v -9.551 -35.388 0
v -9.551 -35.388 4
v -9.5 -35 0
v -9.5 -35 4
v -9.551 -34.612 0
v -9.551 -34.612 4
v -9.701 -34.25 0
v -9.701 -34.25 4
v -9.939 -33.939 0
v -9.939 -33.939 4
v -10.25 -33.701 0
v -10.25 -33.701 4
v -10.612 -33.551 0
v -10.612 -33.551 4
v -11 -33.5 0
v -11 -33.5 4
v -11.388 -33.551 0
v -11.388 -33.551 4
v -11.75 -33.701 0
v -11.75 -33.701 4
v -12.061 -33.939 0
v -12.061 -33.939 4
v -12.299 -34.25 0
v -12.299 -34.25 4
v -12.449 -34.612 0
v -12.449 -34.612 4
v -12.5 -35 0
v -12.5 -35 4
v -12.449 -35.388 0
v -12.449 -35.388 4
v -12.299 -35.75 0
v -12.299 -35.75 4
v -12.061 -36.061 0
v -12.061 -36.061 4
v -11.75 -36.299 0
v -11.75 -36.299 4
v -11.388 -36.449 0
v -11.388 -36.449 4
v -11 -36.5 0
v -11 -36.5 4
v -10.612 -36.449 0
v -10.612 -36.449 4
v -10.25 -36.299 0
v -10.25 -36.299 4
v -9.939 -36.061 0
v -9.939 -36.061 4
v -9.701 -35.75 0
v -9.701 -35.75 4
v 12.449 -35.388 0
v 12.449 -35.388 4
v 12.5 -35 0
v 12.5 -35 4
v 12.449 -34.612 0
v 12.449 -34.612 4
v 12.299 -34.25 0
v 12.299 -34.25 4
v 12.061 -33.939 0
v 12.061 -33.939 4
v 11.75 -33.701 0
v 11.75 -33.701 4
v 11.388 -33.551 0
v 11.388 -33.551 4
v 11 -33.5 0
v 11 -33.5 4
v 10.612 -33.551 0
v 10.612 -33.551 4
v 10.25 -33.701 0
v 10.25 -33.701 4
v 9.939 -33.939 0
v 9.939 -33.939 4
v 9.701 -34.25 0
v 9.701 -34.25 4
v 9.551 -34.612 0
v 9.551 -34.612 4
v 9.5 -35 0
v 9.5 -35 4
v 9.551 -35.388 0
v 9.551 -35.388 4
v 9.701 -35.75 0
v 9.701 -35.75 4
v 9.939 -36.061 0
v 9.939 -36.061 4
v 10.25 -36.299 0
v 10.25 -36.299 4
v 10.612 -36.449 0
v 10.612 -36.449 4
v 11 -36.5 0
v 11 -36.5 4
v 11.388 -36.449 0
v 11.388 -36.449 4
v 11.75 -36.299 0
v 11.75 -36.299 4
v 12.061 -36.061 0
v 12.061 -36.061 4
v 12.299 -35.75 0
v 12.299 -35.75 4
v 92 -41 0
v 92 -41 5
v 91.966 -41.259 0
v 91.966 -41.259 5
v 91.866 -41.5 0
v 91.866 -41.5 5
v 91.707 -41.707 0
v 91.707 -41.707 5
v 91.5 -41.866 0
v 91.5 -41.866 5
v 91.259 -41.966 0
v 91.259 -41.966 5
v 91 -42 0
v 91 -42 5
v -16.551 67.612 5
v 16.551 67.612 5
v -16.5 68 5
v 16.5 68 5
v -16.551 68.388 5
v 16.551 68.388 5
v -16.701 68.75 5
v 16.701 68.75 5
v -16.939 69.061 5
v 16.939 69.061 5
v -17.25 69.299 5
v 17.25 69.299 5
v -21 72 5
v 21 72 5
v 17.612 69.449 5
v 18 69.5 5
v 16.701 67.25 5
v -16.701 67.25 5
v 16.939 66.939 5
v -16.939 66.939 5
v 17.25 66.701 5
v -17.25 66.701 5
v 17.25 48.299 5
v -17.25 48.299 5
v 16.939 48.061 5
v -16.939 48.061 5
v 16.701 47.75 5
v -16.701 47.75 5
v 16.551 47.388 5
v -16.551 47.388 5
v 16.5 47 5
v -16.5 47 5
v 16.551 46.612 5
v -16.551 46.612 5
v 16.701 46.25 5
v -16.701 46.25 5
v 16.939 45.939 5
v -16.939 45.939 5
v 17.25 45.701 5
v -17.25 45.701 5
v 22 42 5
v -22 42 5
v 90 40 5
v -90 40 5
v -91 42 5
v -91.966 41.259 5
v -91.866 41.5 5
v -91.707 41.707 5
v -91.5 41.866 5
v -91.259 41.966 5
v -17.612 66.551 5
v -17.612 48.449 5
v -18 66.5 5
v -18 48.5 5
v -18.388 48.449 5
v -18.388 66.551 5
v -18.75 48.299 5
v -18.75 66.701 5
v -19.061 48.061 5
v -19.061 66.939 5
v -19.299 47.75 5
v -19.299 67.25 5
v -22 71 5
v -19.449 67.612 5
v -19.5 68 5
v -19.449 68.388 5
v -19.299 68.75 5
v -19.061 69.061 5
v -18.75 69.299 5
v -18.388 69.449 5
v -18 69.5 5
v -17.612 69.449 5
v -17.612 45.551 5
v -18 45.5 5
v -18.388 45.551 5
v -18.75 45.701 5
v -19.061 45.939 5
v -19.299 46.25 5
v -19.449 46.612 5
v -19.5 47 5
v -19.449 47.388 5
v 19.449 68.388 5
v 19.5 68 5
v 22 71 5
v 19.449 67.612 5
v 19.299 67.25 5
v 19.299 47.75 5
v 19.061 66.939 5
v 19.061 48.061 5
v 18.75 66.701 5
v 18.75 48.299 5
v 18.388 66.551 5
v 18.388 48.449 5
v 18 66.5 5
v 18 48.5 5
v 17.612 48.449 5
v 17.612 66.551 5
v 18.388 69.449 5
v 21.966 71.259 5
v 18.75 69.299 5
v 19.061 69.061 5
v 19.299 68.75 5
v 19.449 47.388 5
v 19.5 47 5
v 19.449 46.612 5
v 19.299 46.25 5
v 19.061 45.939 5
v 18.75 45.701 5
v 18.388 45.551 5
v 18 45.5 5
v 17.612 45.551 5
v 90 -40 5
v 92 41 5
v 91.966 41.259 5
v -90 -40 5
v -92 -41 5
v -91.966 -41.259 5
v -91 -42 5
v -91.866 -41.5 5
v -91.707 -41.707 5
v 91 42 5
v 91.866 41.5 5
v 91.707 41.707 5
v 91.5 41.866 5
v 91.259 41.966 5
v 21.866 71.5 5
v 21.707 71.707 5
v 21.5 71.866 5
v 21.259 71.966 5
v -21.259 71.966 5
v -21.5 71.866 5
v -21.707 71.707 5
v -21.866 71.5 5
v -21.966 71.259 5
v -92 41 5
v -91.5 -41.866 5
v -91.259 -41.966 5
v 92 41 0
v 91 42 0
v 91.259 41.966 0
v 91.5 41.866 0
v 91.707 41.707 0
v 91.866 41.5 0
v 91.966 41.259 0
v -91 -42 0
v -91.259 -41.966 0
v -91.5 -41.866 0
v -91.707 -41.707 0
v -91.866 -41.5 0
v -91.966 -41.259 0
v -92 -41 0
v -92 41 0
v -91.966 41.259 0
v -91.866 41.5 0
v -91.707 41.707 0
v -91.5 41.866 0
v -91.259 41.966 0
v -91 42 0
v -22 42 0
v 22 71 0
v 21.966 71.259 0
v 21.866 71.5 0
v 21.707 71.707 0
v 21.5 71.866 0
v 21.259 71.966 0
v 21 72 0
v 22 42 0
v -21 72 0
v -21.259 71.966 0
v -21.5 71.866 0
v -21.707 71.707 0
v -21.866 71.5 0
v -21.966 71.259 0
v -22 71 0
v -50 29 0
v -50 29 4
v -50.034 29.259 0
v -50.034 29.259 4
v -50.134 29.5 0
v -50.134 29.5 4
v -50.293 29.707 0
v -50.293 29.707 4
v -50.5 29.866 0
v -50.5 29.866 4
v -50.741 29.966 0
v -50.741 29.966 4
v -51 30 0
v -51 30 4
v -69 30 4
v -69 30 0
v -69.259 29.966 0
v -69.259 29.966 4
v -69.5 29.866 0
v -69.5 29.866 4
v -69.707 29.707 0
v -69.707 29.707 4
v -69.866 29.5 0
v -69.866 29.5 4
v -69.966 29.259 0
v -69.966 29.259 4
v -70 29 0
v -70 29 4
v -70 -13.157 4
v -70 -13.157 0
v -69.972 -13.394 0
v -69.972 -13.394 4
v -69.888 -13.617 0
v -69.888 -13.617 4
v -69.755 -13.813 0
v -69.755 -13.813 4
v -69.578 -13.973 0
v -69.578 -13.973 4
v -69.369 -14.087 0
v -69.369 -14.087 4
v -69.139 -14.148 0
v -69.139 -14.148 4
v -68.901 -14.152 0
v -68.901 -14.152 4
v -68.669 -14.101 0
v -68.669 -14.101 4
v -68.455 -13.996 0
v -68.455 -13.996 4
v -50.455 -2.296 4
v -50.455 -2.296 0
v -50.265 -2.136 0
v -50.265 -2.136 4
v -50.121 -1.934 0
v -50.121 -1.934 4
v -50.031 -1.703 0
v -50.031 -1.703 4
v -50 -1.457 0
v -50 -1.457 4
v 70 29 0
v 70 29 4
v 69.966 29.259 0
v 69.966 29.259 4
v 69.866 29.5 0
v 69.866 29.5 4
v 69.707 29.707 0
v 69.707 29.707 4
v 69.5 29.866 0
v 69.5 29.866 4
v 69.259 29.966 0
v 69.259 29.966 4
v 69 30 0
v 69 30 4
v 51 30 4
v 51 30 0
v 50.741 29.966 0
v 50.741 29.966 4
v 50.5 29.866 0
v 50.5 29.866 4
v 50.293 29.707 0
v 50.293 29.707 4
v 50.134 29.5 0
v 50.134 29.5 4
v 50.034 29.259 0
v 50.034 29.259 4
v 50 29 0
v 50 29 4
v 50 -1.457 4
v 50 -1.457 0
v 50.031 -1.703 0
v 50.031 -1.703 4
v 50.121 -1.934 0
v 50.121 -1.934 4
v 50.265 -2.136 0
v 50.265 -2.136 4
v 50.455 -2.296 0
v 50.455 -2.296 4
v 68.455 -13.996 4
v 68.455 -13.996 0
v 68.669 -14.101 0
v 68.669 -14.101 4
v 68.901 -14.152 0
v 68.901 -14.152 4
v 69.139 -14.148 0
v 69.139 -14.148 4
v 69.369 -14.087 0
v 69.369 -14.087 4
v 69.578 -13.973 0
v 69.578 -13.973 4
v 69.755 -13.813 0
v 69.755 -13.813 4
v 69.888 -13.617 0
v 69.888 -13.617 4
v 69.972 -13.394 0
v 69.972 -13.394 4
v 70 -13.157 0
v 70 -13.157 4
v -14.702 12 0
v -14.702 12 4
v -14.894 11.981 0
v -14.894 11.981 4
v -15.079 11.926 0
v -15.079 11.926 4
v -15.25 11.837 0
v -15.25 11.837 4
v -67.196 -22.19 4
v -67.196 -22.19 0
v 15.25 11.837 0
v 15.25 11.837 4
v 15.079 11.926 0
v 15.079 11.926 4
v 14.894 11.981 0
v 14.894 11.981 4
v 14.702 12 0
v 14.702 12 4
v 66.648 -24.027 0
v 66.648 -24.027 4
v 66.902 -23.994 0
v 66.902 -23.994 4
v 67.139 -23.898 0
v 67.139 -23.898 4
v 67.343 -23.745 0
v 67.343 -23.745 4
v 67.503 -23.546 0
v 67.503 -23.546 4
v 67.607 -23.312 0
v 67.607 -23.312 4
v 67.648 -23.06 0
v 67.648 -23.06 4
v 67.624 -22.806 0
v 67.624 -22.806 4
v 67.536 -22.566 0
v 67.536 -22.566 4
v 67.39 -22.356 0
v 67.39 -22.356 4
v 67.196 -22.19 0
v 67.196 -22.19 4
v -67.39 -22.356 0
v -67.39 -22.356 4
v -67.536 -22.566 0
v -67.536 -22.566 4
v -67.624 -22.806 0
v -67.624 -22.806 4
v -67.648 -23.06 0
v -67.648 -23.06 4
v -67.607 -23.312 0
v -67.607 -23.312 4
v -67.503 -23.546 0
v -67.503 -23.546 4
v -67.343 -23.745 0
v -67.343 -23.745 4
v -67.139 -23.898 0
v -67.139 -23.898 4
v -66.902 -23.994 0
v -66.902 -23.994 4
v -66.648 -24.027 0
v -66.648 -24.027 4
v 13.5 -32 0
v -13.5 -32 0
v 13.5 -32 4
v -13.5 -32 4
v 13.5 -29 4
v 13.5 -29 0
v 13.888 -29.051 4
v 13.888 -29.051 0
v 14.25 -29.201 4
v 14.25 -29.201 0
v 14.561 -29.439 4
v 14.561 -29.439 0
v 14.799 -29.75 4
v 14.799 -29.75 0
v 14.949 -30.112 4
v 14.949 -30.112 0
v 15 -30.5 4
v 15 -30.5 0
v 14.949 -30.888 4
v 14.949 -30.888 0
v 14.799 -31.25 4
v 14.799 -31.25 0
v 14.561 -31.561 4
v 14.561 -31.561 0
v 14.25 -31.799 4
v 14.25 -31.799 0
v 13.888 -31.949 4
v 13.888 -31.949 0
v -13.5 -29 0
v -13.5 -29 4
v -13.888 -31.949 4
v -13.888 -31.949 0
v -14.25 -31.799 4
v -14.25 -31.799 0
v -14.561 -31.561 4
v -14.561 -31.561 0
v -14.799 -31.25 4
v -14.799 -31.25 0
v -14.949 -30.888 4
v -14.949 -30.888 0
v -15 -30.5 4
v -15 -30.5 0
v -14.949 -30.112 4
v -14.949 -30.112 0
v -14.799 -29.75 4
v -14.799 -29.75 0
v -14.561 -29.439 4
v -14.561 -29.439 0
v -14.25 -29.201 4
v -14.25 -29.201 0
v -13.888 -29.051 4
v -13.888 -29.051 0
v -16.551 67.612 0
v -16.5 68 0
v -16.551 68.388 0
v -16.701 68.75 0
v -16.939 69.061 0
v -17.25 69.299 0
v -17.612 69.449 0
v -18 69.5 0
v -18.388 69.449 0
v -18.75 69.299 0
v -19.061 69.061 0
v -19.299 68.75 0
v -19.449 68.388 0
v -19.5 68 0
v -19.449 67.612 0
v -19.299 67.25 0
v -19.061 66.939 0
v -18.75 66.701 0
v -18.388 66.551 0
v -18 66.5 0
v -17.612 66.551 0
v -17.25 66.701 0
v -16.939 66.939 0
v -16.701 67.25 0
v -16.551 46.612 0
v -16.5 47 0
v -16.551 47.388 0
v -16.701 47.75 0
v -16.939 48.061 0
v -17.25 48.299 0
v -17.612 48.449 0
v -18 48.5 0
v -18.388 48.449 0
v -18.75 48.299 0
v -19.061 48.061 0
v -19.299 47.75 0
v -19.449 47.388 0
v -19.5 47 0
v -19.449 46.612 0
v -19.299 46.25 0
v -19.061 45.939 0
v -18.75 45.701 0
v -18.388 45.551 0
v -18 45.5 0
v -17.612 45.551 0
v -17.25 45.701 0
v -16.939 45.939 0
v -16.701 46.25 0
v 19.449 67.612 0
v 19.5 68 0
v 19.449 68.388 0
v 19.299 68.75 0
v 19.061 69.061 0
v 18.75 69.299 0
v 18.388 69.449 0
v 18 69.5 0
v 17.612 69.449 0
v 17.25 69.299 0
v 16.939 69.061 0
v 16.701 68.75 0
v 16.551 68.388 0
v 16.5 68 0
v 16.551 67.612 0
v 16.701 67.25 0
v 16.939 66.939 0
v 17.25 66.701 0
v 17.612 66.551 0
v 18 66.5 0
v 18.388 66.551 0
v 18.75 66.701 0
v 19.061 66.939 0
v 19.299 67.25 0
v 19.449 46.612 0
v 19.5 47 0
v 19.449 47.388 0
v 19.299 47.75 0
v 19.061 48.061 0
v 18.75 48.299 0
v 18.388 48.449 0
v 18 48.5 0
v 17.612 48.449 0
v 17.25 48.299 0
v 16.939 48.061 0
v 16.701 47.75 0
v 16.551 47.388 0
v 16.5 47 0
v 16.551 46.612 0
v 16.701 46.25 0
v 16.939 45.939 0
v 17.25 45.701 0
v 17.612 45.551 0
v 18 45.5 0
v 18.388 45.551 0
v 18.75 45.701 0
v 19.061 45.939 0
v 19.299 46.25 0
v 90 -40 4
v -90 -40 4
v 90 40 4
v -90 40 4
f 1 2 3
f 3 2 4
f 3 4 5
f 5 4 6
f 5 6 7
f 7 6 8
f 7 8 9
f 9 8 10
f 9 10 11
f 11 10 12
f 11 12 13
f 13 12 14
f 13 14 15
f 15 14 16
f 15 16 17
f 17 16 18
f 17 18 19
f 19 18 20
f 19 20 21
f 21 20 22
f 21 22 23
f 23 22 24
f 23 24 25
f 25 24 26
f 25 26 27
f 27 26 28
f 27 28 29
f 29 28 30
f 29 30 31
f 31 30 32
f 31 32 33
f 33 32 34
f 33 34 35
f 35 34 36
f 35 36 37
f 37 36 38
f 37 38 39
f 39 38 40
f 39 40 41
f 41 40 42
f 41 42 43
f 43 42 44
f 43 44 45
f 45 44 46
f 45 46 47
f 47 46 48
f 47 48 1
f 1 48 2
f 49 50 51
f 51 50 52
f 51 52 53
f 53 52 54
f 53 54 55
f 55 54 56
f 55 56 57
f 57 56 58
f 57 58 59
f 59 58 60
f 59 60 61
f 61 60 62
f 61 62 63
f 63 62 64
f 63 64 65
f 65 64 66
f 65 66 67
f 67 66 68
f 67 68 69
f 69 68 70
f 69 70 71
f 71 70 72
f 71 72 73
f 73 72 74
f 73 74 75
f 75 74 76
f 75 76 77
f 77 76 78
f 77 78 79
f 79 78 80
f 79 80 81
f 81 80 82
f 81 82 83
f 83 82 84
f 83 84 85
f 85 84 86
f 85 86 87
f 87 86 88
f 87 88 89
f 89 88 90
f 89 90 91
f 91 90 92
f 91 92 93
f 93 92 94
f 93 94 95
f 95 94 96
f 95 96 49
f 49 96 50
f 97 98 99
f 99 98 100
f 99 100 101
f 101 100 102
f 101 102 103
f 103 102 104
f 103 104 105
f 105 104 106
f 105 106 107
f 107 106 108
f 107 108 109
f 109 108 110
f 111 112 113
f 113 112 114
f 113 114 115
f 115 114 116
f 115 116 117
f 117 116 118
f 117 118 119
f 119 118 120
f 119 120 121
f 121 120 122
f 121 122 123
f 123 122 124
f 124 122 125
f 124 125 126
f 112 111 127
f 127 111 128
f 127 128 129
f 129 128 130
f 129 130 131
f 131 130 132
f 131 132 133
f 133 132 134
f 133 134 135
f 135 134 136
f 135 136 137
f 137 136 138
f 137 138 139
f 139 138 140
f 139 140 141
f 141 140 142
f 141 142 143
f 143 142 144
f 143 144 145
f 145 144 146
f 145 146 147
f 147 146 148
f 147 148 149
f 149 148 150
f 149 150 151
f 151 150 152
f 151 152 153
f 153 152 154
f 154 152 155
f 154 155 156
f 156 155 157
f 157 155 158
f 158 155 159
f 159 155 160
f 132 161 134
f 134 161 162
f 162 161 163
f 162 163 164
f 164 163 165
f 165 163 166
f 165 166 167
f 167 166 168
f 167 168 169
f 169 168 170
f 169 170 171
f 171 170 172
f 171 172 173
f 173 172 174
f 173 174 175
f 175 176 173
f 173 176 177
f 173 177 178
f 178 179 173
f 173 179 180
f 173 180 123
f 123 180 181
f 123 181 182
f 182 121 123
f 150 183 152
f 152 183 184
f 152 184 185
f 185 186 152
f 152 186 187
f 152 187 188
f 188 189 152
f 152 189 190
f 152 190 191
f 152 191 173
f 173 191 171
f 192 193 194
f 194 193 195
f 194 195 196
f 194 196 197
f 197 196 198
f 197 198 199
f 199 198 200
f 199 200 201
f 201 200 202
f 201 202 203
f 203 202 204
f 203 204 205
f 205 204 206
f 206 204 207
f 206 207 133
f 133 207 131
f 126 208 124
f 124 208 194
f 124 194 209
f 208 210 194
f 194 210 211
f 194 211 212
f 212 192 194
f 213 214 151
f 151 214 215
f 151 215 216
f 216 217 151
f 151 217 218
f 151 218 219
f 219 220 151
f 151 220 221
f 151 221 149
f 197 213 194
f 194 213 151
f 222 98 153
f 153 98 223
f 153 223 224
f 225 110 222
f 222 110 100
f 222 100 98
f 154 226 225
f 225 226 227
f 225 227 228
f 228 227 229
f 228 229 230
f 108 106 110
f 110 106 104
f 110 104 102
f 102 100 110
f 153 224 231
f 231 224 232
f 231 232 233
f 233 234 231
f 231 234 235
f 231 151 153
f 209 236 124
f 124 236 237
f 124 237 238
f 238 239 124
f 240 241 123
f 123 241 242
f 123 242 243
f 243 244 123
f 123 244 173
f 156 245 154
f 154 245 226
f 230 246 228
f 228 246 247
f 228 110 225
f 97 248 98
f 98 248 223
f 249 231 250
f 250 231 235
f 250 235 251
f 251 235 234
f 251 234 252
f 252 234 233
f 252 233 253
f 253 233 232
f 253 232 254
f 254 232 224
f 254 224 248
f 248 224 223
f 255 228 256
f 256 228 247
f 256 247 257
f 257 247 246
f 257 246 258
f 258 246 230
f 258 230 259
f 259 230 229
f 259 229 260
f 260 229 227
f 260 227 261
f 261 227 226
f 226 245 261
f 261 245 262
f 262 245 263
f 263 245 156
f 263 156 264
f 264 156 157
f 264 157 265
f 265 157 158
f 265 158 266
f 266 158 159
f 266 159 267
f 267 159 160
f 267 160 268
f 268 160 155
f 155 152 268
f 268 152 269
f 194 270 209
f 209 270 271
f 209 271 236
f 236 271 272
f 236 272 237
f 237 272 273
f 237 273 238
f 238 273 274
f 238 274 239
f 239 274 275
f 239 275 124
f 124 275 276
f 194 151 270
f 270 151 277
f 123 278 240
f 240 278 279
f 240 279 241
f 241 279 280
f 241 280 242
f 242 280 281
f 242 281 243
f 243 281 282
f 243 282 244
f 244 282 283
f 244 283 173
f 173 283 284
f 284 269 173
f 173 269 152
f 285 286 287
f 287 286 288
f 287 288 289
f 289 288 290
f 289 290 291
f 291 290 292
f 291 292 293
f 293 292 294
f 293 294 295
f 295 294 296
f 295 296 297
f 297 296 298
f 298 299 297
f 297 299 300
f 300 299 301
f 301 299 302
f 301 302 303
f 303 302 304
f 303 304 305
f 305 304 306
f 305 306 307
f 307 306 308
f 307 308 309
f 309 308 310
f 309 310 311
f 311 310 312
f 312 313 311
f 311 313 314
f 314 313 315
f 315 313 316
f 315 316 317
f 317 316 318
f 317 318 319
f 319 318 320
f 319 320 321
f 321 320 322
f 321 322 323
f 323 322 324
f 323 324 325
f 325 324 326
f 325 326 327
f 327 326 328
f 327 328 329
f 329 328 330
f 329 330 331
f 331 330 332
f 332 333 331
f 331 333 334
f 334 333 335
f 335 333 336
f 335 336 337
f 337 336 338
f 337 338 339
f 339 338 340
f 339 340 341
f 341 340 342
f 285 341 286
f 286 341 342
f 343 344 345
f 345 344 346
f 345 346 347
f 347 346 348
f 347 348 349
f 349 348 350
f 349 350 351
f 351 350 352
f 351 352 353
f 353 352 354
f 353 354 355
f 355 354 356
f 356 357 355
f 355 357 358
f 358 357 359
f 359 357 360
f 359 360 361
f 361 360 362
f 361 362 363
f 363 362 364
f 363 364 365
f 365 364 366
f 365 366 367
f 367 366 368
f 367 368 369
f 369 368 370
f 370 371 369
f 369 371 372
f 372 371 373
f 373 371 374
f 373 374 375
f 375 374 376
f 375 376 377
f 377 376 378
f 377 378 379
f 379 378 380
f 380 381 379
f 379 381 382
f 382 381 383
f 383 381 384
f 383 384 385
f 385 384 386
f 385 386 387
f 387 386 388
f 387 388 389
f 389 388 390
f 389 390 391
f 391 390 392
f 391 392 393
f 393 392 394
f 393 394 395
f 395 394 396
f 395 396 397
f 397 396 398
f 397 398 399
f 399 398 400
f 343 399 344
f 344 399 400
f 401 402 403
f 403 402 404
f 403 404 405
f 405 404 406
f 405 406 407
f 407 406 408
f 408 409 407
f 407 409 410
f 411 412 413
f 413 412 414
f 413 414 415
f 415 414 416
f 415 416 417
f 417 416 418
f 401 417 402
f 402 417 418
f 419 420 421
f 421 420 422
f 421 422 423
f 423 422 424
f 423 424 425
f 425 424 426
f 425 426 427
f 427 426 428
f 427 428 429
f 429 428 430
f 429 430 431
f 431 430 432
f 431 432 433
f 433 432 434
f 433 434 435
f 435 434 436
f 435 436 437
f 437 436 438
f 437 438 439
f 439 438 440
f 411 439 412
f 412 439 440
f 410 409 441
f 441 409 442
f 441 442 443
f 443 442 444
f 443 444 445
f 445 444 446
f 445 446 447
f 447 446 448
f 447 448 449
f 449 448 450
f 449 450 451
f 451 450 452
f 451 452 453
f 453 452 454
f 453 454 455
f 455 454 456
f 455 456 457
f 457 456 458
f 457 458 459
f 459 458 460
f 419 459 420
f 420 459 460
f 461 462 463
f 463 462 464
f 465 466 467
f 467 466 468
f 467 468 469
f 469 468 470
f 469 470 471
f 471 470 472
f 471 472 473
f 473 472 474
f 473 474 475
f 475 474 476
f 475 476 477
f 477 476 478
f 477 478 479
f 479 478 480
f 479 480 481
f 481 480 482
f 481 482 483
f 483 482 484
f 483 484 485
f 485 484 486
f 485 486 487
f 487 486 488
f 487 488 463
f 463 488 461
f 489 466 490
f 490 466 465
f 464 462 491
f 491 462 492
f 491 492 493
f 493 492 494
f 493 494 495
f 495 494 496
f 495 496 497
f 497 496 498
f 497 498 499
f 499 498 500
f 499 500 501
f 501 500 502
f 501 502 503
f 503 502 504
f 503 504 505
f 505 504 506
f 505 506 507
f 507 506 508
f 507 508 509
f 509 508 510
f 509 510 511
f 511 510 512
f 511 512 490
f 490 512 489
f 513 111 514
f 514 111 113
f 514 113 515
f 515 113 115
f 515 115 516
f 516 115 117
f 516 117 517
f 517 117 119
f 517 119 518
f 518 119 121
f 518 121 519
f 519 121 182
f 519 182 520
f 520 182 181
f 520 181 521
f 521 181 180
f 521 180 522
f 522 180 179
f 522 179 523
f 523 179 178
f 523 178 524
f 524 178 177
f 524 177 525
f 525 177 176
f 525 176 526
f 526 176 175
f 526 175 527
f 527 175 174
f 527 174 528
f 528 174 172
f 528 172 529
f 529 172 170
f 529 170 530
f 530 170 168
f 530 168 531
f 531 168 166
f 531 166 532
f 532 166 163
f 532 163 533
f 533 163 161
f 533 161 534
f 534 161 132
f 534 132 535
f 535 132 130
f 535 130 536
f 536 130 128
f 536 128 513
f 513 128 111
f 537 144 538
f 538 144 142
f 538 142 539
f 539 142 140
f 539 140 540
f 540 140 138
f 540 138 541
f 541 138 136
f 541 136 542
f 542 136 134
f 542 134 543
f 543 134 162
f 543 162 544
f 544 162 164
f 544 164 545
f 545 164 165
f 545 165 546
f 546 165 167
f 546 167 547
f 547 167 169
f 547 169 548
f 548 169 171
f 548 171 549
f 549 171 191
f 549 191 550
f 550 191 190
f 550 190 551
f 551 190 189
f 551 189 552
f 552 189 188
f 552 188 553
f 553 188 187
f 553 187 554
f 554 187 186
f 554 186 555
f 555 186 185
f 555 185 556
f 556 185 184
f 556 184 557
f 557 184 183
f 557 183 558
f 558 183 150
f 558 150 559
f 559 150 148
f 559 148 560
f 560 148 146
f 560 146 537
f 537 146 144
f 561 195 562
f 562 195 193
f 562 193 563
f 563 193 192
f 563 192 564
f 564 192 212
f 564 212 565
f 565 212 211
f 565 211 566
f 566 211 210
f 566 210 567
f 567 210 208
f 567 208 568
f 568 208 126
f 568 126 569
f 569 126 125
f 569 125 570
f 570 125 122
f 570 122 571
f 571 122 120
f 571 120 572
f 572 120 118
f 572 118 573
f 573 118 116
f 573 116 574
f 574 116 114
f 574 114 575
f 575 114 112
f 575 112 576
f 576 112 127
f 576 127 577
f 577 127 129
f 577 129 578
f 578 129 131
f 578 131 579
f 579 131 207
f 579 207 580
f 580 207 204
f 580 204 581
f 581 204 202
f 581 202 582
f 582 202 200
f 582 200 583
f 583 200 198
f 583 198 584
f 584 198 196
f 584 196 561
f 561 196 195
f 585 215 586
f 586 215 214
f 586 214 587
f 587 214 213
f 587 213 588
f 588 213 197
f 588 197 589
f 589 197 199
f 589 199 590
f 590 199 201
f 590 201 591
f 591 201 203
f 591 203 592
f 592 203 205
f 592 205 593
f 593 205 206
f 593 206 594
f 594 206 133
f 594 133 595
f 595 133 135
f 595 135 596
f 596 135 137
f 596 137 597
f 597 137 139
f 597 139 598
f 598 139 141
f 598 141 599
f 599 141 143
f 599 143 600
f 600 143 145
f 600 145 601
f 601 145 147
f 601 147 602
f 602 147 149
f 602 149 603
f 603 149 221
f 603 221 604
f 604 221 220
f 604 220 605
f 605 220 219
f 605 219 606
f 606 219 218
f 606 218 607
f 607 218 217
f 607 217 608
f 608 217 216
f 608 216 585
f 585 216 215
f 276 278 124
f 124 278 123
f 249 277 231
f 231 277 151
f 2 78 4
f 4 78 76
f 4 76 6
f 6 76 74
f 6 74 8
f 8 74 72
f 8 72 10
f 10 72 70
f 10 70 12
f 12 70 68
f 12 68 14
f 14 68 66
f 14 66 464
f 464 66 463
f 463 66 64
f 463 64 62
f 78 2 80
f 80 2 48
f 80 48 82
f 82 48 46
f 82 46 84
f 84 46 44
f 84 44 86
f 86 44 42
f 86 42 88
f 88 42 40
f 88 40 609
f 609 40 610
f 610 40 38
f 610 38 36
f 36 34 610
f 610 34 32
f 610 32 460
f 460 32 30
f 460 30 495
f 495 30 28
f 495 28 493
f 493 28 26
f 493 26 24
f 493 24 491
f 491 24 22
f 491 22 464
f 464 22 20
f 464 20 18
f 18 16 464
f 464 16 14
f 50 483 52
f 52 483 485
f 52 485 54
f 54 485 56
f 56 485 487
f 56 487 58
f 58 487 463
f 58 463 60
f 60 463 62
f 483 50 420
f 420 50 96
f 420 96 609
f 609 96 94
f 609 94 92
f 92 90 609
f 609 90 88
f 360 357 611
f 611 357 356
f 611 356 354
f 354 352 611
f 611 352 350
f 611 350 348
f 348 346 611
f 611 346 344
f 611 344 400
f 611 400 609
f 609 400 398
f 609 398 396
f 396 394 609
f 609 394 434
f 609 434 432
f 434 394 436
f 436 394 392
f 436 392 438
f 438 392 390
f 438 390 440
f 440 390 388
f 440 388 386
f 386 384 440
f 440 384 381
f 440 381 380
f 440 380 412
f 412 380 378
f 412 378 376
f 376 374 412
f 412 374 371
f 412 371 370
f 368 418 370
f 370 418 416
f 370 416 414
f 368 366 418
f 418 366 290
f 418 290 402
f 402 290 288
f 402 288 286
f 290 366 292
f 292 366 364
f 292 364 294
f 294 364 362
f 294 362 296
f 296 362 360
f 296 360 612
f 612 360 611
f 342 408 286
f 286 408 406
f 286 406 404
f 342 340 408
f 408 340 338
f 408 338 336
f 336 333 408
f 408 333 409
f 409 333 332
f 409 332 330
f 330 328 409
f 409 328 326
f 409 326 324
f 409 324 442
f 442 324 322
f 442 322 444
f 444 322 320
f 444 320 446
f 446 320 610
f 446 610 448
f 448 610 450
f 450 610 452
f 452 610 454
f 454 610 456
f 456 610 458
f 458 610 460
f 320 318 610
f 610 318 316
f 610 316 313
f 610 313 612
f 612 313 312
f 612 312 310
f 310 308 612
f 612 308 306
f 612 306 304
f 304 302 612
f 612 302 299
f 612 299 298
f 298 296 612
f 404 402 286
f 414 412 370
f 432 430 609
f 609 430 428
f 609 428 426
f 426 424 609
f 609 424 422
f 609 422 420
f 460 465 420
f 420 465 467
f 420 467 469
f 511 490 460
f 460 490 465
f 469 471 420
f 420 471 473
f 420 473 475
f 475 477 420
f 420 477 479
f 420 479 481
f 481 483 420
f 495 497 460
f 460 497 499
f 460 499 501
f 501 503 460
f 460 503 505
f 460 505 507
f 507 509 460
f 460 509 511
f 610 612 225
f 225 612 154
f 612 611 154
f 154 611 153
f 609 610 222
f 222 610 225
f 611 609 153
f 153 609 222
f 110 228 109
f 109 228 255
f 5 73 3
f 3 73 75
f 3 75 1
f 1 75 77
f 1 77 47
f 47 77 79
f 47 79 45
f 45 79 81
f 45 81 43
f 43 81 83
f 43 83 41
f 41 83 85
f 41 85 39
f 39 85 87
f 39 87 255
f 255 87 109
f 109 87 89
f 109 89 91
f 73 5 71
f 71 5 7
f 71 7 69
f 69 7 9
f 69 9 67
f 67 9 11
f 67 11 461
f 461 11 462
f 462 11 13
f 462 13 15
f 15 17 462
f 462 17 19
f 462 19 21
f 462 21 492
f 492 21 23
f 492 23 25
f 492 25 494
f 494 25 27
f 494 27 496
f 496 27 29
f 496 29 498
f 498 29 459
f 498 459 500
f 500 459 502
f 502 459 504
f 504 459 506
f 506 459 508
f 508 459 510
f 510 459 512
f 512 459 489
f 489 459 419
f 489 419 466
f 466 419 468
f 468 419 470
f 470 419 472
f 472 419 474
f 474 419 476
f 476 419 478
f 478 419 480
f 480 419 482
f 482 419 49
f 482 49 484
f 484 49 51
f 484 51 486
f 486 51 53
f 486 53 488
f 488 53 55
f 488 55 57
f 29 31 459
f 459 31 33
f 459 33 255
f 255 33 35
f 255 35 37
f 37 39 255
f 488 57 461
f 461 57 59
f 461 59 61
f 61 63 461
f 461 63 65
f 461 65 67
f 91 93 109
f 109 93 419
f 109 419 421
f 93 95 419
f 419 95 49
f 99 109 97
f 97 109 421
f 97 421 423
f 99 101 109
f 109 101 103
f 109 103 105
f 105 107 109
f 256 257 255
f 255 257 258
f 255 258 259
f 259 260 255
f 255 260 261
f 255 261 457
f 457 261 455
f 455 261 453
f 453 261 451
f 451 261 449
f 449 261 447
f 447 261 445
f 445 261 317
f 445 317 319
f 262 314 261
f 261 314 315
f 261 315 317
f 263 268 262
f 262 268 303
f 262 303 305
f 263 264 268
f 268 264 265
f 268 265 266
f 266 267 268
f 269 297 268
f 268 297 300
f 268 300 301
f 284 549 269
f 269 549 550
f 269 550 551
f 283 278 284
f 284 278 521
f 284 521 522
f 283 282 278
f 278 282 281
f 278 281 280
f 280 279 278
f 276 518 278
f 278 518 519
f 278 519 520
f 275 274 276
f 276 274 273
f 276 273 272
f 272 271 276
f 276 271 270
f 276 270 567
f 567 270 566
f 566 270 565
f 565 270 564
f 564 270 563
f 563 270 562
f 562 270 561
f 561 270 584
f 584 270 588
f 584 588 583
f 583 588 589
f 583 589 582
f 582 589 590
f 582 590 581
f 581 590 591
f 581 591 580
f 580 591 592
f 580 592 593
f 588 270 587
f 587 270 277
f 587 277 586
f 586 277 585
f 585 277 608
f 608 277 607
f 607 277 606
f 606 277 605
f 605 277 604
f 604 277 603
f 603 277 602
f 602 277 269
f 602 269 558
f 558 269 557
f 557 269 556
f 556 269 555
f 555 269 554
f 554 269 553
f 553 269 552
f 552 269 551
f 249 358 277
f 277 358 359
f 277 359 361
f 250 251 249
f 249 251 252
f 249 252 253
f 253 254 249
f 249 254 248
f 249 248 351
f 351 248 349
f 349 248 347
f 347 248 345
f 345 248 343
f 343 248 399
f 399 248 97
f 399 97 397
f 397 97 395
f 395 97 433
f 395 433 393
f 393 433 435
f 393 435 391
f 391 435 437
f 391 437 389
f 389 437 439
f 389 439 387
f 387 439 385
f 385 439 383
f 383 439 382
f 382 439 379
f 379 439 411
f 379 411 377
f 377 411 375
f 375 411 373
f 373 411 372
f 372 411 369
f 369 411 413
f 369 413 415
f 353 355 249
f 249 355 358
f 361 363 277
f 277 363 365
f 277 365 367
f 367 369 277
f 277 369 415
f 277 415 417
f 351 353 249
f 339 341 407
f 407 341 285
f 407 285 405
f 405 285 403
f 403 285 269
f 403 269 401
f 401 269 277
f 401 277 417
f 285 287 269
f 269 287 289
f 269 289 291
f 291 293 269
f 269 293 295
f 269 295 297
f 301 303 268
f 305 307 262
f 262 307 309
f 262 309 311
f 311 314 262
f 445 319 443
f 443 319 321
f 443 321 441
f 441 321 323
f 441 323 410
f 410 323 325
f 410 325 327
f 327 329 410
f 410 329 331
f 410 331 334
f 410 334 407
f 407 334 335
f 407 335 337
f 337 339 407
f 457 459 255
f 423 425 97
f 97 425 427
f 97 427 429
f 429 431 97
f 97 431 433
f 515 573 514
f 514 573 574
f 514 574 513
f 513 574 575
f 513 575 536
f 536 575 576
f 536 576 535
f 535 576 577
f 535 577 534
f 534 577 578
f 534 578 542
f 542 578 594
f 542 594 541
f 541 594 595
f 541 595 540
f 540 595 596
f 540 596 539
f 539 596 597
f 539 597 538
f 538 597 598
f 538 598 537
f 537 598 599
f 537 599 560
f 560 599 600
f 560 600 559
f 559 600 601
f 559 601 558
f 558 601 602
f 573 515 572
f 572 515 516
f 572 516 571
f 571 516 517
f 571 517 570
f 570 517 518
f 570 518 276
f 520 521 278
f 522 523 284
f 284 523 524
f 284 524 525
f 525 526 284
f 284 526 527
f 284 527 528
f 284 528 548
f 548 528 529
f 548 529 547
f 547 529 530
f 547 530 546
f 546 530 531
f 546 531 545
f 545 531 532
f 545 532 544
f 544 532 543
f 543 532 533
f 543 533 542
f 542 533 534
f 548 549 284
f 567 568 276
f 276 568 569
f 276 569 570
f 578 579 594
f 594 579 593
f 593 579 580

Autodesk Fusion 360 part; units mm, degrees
sketch "Sketch3" plane through (0, 0, 0) normal (0, 0, 1) x (1, 0, 0)
  line L0 (90, 40) -> (-90, 40)
  line L1 (-90, 40) -> (-90, -40)
  line L2 (-90, -40) -> (90, -40)
  line L3 (90, -40) -> (90, 40)
  line L4 (90, 40) -> (-90, -40) construction
  line L5 (-90, 40) -> (90, -40) construction
  line L6 (-92, -42) -> (92, -42)
  line L7 (92, -42) -> (92, 42)
  line L8 (92, 42) -> (-92, 42)
  line L9 (-92, 42) -> (-92, -42)
  dimension "d6" = 180
  dimension "d7" = 80
  dimension "d8" = 2
extrude "Extrude2" add sketch "Sketch3" along normal blind 5
extrude "Extrude3" add sketch "Sketch3" along normal blind 4 contours L0 L1 L2 L3
sketch "Sketch6" plane through (0, 0, 5) normal (0, 0, 1) x (-1, 0, 0)
  line L0 (-90, -40) -> (-90, 40)
  line L1 (-90, 40) -> (90, 40)
  line L2 (90, 40) -> (90, -40)
  line L3 (90, -40) -> (-90, -40)
  line L4 (92, -42) -> (92, 42)
  line L5 (92, 42) -> (-92, 42)
  line L6 (-92, 42) -> (-92, -42)
  line L7 (-92, -42) -> (92, -42)
  line L8 (-22, -27) -> (-22, -57)
  line L9 (22, -57) -> (22, -27)
  line L10 (22, -42) -> (-22, -42)
  line L11 (-22, -42) -> (-22, -72)
  line L12 (-22, -72) -> (22, -72)
  line L13 (22, -72) -> (22, -42)
  line L14 (22, -42) -> (-22, -72) construction
  line L15 (-22, -42) -> (22, -72) construction
  point P0 (0, -42)
  point P1 (0, -57)
  dimension "d20" = 44
  dimension "d21" = 30
  dimension "d22" = 44
  dimension "d23" = 30
extrude "Extrude4" add sketch "Sketch6" against normal blind 5 contours L7 L8 L9 L10 L11 L12 L13
sketch "Sketch7" plane through (0, 0, 5) normal (0, 0, 1) x (-1, 0, 0)
  line L0 (-90, -40) -> (-90, 40)
  line L1 (-90, 40) -> (90, 40)
  line L2 (90, 40) -> (90, -40)
  line L3 (90, -40) -> (-90, -40)
  line L4 (92, -42) -> (92, 42)
  line L5 (92, 42) -> (-92, 42)
  line L6 (-92, 42) -> (-92, -42)
  line L7 (-92, -42) -> (-22, -42)
  line L8 (-22, -42) -> (-22, -72)
  line L9 (-22, -72) -> (22, -72)
  line L10 (22, -72) -> (22, -42)
  line L11 (22, -42) -> (92, -42)
  circle A0 centre (-18, -68) radius 1.5
  circle A1 centre (18, -68) radius 1.5
  circle A2 centre (-18, -47) radius 1.5
  circle A3 centre (18, -47) radius 1.5
  dimension "d26" = 3
  dimension "d27" = 4
  dimension "d28" = 4
  dimension "d29" = 3
  dimension "d30" = 3
  dimension "d31" = 3
  dimension "d32" = 4
  dimension "d33" = 4
  dimension "d34" = 4
  dimension "d35" = 7
  dimension "d36" = 4
  dimension "d37" = 7
extrude "Extrude5" cut sketch "Sketch7" against normal blind 6 contours A2
extrude "Extrude6" cut sketch "Sketch7" against normal blind 6 contours A0
extrude "Extrude7" cut sketch "Sketch7" against normal blind 23 contours A3
extrude "Extrude8" cut sketch "Sketch7" against normal blind 15 contours A1
sketch "Sketch8" plane through (0, 0, 4) normal (0, 0, 1) x (-1, 0, 0)
  line L0 (-90, 40) -> (-90, -40)
  line L1 (-90, -40) -> (90, -40)
  line L2 (90, -40) -> (90, 40)
  line L3 (90, 40) -> (-90, 40)
  line L4 (15, 29) -> (-15, 29)
  line L5 (-15, 29) -> (-15, 32)
  line L6 (-15, 32) -> (15, 32)
  line L7 (15, 32) -> (15, 29)
  line L8 (15, 29) -> (-15, 32) construction
  line L9 (-15, 29) -> (15, 32) construction
  circle A0 centre (-13.5, 30.5) radius 1.5
  circle A1 centre (13.5, 30.5) radius 1.5
  circle A2 centre (-11, 35) radius 1
  circle A3 centre (11, 35) radius 1
  point P0 (0, 30.5)
  dimension "d46" = 30
  dimension "d47" = 3
  dimension "d48" = 8
  dimension "d49" = 5
  dimension "d50" = 5
  dimension "d51" = 4
  dimension "d52" = 4
extrude "Extrude9" cut sketch "Sketch8" against normal blind 12 contours L4 L6 A0 A1 | A1 | A0
extrude "Extrude10" cut sketch "Sketch8" against normal blind 25 contours A2 | A3
sketch "Sketch9" plane through (0, 0, 4) normal (0, 0, 1) x (-1, 0, 0)
  circle A0 centre (-11, 35) radius 1
  circle A1 centre (11, 35) radius 1
  line L0 (13.5, 29) -> (-13.5, 29)
  arc A2 (-13.5, 32) -> (-13.5, 29) centre (-13.5, 30.5) ccw
  line L1 (-13.5, 32) -> (13.5, 32)
  arc A3 (13.5, 29) -> (13.5, 32) centre (13.5, 30.5) ccw
  line L2 (-90, 40) -> (-90, -40)
  line L3 (-90, -40) -> (90, -40)
  line L4 (90, -40) -> (90, 40)
  line L5 (90, 40) -> (-90, 40)
  line L6 (70, 24.0265) -> (-70, 24.0265)
  line L7 (0, 24.0265) -> (0, -12)
  line L8 (-70, 24.0265) -> (-15, -12)
  line L9 (15, -12) -> (70, 24.0265)
  line L10 (-15, -12) -> (15, -12)
  line L11 (70, 15) -> (70, -30)
  line L12 (70, -30) -> (50, -30)
  line L13 (70, 15) -> (50, 2)
  line L14 (50, 2) -> (50, -30)
  line L15 (-70, 15) -> (-50, 2)
  line L16 (-70, 15) -> (-70, -30)
  line L17 (-50, 2) -> (-50, -30)
  line L18 (-70, -30) -> (-50, -30)
  point P0 (0, -12)
  dimension "d62" = 28
extrude "Extrude11" cut sketch "Sketch9" against normal blind 25 contours L6 L7 L9 L10 | L6 L7 L8 L10
fillet "Fillet1" radius 1 1 edges at (-70, -24.0265, 2)
fillet "Fillet2" radius 1 3 edges at (70, -24.0265, 2) (15, 12, 2) (-15, 12, 2)
extrude "Extrude12" cut sketch "Sketch9" against normal blind 15 contours L11 L12 L13 L14 | L15 L16 L17 L18
fillet "Fillet3" radius 1 4 edges at (70, -15, 2) (50, -2, 2) (50, 30, 2) (70, 30, 2)
fillet "Fillet4" radius 1 4 edges at (-50, -2, 2) (-70, -15, 2) (-70, 30, 2) (-50, 30, 2)
fillet "Fillet5" radius 1 6 edges at (-22, 72, 2.5) (22, 72, 2.5) (-92, 42, 2.5) (-92, -42, 2.5) (92, 42, 2.5) (92, -42, 2.5)
sketch "Sketch11" plane through (0, 0, 4) normal (0, 0, 1) x (-1, 0, 0)
sketch "Sketch12" plane through (0, 0, 4) normal (0, 0, 1) x (-1, 0, 0)
sketch "Sketch13" plane through (0, 0, 4) normal (0, 0, 1) x (-1, 0, 0)
  circle A0 centre (-11, 35) radius 1.5
  circle A1 centre (11, 35) radius 1.5
  dimension "d79" = 3
  dimension "d80" = 3
extrude "Extrude13" cut sketch "Sketch13" against normal blind 100
